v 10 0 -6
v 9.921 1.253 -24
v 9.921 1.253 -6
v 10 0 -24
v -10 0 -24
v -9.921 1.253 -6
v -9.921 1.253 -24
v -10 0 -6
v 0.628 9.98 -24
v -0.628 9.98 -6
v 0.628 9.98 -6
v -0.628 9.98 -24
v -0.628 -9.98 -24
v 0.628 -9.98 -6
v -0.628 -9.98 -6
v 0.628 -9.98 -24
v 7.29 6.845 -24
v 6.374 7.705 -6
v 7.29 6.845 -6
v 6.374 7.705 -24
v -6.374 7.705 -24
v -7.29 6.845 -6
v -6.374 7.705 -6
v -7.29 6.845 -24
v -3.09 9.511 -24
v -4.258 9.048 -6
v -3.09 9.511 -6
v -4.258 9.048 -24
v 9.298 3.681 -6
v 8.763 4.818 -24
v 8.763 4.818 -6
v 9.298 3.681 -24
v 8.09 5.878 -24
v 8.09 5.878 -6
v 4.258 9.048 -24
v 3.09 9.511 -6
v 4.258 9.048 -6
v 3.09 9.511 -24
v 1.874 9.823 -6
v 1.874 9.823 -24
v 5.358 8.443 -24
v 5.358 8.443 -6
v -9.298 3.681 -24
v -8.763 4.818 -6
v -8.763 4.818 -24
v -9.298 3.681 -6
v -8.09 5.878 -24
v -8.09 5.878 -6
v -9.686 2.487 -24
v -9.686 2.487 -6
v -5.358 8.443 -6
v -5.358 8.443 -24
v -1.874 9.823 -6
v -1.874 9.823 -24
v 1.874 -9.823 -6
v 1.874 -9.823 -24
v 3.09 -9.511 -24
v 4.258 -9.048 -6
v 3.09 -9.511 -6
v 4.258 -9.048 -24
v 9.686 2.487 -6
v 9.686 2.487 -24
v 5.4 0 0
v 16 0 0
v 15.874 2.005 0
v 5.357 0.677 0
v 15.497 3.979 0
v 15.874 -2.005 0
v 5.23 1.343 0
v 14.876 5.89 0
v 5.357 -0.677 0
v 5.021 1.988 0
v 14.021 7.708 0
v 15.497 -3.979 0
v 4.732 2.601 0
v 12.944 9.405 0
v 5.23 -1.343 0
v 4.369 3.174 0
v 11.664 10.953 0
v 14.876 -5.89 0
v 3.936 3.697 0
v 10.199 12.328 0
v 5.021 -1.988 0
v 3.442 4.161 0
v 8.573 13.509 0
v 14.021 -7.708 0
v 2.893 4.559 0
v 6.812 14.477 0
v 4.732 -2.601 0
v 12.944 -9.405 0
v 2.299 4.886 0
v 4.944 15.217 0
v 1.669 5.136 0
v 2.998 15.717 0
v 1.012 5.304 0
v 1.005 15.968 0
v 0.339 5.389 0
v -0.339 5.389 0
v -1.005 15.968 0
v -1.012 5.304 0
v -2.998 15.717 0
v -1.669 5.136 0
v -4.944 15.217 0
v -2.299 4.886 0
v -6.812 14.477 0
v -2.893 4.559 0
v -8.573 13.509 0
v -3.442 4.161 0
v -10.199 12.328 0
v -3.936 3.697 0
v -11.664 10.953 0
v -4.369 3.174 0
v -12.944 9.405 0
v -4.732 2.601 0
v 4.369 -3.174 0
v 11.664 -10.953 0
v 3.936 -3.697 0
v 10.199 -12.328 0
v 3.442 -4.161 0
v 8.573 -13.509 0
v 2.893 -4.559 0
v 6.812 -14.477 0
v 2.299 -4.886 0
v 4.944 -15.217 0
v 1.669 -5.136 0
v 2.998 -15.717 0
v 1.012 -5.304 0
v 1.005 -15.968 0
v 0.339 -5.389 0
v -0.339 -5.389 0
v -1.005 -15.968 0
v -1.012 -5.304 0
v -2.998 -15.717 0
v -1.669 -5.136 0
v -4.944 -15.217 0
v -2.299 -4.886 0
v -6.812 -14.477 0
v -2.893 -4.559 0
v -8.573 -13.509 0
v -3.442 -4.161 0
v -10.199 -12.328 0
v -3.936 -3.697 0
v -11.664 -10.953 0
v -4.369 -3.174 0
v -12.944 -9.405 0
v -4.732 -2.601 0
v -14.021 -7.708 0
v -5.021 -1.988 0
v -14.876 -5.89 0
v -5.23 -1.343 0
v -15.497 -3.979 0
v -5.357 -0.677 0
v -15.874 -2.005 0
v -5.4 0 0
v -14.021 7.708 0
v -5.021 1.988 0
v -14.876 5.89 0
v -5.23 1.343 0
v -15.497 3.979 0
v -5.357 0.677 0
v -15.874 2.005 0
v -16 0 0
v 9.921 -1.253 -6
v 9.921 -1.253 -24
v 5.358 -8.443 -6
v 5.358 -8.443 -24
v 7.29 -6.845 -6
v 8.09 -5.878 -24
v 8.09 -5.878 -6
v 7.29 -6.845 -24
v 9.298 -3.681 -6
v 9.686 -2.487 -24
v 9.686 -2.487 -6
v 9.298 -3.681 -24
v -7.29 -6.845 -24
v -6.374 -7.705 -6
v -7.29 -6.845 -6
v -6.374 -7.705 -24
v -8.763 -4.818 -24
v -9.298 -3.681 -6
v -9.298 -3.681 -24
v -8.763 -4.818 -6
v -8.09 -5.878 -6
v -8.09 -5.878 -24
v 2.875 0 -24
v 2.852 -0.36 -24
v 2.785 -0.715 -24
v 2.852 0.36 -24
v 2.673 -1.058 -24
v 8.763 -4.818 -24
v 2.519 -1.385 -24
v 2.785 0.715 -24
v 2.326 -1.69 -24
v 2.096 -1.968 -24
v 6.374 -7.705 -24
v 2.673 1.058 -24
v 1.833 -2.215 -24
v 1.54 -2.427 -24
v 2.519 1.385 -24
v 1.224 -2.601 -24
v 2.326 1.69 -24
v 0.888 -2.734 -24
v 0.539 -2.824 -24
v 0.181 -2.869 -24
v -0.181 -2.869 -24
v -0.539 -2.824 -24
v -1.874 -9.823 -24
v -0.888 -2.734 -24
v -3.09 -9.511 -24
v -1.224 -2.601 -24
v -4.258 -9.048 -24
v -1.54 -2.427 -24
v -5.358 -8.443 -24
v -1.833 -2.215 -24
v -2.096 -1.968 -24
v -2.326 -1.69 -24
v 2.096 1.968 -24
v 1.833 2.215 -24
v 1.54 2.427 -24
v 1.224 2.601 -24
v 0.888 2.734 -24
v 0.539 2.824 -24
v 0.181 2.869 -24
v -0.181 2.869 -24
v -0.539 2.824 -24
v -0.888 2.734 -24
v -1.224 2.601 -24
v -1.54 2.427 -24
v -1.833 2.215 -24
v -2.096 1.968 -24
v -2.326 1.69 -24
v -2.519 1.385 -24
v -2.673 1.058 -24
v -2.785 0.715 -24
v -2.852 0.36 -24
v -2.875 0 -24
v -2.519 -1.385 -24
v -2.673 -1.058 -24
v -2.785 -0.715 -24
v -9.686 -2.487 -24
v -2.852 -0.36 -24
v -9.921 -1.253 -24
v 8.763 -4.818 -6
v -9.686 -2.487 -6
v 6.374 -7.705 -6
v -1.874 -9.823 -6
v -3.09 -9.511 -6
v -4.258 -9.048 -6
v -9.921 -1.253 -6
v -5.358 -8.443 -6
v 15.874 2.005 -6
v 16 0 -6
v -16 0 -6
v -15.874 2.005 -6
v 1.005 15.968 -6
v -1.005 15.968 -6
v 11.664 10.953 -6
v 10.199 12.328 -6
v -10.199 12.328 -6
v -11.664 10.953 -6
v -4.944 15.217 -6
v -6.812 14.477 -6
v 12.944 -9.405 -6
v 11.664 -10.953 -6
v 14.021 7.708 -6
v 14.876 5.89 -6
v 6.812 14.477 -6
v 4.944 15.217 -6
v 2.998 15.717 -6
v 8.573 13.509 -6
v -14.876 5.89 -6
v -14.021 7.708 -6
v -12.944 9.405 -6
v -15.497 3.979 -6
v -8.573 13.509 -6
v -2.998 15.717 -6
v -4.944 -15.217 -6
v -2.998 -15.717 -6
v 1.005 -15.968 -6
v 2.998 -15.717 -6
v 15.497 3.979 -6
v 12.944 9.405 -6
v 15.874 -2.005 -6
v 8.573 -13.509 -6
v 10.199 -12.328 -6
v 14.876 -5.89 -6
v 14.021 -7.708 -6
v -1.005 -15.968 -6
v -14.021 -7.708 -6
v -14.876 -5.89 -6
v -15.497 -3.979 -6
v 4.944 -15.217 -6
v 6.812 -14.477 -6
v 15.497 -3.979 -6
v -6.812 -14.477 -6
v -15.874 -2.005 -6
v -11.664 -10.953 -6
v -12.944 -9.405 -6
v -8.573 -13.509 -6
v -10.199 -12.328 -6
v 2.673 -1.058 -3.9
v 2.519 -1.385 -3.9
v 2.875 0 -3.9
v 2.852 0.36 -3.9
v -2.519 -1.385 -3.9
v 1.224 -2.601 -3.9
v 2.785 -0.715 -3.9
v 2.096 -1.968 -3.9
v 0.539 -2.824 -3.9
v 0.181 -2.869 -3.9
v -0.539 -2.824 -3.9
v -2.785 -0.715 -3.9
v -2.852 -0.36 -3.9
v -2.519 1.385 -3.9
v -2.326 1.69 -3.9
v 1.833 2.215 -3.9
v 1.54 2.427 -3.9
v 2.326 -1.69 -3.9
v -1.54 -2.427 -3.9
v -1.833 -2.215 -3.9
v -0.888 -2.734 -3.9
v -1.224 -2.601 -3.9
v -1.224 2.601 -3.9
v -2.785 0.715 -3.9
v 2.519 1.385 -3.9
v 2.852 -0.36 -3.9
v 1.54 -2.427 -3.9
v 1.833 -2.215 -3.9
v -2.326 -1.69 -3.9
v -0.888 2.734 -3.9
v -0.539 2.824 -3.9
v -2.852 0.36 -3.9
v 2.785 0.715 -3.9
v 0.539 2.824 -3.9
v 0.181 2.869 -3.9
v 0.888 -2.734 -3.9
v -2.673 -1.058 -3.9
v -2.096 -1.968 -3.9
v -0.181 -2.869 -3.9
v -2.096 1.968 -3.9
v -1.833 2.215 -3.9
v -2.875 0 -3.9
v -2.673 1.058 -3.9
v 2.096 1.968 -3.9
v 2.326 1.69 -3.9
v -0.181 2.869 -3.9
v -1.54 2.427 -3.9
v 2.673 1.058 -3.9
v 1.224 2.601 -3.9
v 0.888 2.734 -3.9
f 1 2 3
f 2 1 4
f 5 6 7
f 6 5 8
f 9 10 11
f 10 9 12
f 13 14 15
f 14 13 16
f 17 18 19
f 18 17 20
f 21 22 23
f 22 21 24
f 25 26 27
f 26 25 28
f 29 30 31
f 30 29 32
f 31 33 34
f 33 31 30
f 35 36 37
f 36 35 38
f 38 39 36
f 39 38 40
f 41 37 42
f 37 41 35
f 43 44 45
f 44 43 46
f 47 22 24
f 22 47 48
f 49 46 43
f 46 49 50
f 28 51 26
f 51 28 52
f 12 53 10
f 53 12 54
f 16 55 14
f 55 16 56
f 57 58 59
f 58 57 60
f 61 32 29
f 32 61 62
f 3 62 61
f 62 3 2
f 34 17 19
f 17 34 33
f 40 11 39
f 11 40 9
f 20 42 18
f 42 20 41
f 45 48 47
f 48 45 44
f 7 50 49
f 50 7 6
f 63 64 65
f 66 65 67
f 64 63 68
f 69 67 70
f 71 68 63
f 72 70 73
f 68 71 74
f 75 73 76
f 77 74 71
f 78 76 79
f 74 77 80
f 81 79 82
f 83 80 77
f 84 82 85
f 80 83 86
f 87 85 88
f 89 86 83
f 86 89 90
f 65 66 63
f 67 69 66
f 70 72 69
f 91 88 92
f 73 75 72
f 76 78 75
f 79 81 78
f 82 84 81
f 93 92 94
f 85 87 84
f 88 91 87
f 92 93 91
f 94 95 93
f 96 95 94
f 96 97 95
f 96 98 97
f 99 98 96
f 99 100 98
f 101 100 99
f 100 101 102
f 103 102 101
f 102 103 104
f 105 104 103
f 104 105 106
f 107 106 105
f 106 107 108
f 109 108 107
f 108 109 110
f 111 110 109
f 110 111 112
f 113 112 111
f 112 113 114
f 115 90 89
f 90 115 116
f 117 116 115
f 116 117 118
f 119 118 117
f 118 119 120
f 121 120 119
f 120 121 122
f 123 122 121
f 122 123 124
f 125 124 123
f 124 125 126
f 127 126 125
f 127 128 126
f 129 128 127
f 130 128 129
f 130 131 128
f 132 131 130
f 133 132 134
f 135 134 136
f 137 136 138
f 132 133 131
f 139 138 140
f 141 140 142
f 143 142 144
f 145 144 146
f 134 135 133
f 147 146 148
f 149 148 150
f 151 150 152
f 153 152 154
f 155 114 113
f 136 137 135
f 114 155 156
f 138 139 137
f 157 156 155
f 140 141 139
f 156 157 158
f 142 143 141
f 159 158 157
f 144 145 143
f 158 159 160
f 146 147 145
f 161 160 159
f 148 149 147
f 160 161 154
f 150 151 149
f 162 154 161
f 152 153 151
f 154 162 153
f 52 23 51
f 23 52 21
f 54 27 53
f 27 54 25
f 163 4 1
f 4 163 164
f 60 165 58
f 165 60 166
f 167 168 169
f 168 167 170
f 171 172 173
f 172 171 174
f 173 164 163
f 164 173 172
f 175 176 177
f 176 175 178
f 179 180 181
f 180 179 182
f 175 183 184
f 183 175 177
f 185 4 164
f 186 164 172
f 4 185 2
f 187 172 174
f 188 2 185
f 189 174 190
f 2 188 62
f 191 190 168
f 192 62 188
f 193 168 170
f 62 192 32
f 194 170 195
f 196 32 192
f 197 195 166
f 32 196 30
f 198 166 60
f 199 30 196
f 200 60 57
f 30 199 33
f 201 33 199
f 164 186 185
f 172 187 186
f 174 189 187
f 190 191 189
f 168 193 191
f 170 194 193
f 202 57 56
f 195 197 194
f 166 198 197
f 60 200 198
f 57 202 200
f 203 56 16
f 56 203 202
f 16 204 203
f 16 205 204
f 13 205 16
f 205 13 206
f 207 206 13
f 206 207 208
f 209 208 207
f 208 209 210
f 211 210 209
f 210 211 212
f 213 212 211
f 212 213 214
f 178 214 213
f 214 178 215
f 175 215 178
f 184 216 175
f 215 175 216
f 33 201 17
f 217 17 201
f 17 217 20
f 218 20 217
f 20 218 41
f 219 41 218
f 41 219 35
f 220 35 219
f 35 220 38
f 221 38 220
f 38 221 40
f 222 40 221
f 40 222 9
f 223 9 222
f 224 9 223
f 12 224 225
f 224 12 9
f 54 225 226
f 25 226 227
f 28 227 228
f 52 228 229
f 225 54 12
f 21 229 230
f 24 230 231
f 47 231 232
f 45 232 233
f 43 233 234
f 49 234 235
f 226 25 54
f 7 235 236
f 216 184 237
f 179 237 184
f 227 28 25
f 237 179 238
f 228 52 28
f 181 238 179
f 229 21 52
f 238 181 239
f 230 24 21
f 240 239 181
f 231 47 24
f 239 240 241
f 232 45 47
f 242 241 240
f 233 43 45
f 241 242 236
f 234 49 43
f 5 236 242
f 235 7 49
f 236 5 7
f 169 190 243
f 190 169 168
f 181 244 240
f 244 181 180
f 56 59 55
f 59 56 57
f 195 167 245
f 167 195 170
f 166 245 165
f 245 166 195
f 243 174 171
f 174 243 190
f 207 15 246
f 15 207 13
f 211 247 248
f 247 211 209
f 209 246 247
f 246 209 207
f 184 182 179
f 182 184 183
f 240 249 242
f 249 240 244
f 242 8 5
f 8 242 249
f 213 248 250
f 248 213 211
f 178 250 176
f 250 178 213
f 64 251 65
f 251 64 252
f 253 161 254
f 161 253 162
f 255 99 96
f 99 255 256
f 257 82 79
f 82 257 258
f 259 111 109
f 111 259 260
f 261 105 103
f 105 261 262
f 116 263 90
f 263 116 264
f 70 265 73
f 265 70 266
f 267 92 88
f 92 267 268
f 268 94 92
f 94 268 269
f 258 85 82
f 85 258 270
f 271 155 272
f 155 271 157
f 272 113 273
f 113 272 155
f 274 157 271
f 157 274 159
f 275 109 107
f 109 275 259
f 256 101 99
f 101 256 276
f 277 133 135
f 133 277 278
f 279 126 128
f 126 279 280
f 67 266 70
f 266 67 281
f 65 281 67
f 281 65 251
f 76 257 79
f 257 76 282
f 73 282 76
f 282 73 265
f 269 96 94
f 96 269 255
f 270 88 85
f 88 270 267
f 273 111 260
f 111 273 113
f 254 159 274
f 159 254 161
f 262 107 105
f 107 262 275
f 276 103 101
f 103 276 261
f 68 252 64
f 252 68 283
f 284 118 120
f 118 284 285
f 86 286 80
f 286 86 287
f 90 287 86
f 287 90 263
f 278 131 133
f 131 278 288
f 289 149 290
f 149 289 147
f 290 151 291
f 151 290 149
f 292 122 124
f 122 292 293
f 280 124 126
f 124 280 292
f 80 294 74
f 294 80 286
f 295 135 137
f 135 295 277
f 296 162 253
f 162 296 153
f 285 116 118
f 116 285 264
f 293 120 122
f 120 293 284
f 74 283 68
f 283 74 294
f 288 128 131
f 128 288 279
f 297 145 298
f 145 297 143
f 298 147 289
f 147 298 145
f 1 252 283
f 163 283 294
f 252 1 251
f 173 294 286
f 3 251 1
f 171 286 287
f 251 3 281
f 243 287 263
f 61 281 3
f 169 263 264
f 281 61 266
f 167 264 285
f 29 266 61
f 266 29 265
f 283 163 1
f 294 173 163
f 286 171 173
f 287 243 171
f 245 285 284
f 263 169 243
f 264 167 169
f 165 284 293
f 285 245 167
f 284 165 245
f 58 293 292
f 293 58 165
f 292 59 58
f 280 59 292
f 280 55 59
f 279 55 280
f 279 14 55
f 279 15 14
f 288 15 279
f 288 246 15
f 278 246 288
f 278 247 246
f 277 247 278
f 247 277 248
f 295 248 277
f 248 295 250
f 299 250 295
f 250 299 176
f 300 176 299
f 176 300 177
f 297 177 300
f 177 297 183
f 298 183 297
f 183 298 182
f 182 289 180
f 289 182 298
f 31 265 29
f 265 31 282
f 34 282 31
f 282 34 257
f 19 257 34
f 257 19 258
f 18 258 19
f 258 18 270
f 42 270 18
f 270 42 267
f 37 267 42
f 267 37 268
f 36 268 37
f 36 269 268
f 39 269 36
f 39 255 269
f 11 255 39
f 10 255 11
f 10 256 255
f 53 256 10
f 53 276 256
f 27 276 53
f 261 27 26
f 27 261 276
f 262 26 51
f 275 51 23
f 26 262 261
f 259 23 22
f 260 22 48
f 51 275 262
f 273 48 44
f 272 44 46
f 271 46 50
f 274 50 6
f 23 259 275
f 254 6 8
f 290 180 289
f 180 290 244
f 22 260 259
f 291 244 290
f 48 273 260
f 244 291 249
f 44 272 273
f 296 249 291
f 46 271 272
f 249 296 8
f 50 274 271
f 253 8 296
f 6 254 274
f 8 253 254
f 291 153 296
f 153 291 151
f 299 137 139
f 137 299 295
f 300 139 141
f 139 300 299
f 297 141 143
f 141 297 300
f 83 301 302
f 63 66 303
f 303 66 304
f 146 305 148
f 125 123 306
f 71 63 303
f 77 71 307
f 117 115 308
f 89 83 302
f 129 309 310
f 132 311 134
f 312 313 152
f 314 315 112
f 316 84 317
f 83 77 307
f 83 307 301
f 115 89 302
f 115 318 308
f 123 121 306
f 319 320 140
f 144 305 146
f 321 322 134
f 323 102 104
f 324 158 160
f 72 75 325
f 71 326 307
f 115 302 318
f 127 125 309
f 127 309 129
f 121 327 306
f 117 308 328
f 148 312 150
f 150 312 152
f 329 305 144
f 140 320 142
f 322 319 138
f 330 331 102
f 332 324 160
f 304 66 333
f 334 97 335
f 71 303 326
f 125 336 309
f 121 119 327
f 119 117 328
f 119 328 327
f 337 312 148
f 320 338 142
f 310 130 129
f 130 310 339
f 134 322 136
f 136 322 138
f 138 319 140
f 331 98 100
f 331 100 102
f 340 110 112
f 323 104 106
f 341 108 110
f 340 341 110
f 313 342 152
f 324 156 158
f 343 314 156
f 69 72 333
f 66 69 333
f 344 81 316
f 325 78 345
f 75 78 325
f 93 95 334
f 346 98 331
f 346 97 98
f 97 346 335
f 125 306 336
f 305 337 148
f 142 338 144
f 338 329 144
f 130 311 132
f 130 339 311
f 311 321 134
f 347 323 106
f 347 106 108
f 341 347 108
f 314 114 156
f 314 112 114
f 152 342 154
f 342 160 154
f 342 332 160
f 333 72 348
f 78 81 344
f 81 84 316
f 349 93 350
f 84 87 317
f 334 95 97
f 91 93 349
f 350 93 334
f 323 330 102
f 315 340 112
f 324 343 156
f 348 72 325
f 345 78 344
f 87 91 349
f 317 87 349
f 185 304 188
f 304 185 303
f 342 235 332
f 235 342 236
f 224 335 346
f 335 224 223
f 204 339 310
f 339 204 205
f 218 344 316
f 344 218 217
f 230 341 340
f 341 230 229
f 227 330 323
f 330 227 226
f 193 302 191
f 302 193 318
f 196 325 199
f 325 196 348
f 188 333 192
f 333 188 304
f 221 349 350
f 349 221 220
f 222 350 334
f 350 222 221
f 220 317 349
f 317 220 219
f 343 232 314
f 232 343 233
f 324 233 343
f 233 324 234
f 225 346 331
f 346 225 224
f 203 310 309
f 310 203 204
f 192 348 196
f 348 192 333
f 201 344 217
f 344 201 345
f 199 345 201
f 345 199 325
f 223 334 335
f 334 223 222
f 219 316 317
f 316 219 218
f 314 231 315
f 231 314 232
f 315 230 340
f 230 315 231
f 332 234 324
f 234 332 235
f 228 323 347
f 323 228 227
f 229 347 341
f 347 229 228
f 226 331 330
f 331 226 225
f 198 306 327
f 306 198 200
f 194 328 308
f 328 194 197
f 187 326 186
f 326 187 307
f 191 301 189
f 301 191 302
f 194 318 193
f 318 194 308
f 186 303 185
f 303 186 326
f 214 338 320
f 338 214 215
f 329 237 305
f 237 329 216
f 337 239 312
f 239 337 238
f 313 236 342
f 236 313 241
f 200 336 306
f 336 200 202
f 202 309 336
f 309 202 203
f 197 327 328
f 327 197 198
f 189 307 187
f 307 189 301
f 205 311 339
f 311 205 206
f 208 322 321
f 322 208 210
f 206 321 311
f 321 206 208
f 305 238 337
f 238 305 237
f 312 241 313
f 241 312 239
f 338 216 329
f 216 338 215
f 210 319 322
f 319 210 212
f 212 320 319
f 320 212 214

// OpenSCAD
$fn = 50;


difference() {
	union() {
		translate(v = [0, 0, -24.0000000000]) {
			cylinder(h = 24, r = 10.0000000000);
		}
		translate(v = [0, 0, -6.0000000000]) {
			cylinder(h = 6, r = 16.0000000000);
		}
	}
	union() {
		translate(v = [0, 0, 0]) {
			rotate(a = [0, 0, 0]) {
				difference() {
					union() {
						#translate(v = [0, 0, -24.0000000000]) {
							cylinder(h = 24, r = 2.6000000000);
						}
						#translate(v = [0, 0, -3.9000000000]) {
							cylinder(h = 3.9000000000, r = 10.0000000000, r1 = 2.8750000000, r2 = 5.4000000000);
						}
						#translate(v = [0, 0, -24.0000000000]) {
							cylinder(h = 24, r = 2.8750000000);
						}
						#translate(v = [0, 0, -24.0000000000]) {
							cylinder(h = 24, r = 2.6000000000);
						}
					}
					union();
				}
			}
		}
	}
}
